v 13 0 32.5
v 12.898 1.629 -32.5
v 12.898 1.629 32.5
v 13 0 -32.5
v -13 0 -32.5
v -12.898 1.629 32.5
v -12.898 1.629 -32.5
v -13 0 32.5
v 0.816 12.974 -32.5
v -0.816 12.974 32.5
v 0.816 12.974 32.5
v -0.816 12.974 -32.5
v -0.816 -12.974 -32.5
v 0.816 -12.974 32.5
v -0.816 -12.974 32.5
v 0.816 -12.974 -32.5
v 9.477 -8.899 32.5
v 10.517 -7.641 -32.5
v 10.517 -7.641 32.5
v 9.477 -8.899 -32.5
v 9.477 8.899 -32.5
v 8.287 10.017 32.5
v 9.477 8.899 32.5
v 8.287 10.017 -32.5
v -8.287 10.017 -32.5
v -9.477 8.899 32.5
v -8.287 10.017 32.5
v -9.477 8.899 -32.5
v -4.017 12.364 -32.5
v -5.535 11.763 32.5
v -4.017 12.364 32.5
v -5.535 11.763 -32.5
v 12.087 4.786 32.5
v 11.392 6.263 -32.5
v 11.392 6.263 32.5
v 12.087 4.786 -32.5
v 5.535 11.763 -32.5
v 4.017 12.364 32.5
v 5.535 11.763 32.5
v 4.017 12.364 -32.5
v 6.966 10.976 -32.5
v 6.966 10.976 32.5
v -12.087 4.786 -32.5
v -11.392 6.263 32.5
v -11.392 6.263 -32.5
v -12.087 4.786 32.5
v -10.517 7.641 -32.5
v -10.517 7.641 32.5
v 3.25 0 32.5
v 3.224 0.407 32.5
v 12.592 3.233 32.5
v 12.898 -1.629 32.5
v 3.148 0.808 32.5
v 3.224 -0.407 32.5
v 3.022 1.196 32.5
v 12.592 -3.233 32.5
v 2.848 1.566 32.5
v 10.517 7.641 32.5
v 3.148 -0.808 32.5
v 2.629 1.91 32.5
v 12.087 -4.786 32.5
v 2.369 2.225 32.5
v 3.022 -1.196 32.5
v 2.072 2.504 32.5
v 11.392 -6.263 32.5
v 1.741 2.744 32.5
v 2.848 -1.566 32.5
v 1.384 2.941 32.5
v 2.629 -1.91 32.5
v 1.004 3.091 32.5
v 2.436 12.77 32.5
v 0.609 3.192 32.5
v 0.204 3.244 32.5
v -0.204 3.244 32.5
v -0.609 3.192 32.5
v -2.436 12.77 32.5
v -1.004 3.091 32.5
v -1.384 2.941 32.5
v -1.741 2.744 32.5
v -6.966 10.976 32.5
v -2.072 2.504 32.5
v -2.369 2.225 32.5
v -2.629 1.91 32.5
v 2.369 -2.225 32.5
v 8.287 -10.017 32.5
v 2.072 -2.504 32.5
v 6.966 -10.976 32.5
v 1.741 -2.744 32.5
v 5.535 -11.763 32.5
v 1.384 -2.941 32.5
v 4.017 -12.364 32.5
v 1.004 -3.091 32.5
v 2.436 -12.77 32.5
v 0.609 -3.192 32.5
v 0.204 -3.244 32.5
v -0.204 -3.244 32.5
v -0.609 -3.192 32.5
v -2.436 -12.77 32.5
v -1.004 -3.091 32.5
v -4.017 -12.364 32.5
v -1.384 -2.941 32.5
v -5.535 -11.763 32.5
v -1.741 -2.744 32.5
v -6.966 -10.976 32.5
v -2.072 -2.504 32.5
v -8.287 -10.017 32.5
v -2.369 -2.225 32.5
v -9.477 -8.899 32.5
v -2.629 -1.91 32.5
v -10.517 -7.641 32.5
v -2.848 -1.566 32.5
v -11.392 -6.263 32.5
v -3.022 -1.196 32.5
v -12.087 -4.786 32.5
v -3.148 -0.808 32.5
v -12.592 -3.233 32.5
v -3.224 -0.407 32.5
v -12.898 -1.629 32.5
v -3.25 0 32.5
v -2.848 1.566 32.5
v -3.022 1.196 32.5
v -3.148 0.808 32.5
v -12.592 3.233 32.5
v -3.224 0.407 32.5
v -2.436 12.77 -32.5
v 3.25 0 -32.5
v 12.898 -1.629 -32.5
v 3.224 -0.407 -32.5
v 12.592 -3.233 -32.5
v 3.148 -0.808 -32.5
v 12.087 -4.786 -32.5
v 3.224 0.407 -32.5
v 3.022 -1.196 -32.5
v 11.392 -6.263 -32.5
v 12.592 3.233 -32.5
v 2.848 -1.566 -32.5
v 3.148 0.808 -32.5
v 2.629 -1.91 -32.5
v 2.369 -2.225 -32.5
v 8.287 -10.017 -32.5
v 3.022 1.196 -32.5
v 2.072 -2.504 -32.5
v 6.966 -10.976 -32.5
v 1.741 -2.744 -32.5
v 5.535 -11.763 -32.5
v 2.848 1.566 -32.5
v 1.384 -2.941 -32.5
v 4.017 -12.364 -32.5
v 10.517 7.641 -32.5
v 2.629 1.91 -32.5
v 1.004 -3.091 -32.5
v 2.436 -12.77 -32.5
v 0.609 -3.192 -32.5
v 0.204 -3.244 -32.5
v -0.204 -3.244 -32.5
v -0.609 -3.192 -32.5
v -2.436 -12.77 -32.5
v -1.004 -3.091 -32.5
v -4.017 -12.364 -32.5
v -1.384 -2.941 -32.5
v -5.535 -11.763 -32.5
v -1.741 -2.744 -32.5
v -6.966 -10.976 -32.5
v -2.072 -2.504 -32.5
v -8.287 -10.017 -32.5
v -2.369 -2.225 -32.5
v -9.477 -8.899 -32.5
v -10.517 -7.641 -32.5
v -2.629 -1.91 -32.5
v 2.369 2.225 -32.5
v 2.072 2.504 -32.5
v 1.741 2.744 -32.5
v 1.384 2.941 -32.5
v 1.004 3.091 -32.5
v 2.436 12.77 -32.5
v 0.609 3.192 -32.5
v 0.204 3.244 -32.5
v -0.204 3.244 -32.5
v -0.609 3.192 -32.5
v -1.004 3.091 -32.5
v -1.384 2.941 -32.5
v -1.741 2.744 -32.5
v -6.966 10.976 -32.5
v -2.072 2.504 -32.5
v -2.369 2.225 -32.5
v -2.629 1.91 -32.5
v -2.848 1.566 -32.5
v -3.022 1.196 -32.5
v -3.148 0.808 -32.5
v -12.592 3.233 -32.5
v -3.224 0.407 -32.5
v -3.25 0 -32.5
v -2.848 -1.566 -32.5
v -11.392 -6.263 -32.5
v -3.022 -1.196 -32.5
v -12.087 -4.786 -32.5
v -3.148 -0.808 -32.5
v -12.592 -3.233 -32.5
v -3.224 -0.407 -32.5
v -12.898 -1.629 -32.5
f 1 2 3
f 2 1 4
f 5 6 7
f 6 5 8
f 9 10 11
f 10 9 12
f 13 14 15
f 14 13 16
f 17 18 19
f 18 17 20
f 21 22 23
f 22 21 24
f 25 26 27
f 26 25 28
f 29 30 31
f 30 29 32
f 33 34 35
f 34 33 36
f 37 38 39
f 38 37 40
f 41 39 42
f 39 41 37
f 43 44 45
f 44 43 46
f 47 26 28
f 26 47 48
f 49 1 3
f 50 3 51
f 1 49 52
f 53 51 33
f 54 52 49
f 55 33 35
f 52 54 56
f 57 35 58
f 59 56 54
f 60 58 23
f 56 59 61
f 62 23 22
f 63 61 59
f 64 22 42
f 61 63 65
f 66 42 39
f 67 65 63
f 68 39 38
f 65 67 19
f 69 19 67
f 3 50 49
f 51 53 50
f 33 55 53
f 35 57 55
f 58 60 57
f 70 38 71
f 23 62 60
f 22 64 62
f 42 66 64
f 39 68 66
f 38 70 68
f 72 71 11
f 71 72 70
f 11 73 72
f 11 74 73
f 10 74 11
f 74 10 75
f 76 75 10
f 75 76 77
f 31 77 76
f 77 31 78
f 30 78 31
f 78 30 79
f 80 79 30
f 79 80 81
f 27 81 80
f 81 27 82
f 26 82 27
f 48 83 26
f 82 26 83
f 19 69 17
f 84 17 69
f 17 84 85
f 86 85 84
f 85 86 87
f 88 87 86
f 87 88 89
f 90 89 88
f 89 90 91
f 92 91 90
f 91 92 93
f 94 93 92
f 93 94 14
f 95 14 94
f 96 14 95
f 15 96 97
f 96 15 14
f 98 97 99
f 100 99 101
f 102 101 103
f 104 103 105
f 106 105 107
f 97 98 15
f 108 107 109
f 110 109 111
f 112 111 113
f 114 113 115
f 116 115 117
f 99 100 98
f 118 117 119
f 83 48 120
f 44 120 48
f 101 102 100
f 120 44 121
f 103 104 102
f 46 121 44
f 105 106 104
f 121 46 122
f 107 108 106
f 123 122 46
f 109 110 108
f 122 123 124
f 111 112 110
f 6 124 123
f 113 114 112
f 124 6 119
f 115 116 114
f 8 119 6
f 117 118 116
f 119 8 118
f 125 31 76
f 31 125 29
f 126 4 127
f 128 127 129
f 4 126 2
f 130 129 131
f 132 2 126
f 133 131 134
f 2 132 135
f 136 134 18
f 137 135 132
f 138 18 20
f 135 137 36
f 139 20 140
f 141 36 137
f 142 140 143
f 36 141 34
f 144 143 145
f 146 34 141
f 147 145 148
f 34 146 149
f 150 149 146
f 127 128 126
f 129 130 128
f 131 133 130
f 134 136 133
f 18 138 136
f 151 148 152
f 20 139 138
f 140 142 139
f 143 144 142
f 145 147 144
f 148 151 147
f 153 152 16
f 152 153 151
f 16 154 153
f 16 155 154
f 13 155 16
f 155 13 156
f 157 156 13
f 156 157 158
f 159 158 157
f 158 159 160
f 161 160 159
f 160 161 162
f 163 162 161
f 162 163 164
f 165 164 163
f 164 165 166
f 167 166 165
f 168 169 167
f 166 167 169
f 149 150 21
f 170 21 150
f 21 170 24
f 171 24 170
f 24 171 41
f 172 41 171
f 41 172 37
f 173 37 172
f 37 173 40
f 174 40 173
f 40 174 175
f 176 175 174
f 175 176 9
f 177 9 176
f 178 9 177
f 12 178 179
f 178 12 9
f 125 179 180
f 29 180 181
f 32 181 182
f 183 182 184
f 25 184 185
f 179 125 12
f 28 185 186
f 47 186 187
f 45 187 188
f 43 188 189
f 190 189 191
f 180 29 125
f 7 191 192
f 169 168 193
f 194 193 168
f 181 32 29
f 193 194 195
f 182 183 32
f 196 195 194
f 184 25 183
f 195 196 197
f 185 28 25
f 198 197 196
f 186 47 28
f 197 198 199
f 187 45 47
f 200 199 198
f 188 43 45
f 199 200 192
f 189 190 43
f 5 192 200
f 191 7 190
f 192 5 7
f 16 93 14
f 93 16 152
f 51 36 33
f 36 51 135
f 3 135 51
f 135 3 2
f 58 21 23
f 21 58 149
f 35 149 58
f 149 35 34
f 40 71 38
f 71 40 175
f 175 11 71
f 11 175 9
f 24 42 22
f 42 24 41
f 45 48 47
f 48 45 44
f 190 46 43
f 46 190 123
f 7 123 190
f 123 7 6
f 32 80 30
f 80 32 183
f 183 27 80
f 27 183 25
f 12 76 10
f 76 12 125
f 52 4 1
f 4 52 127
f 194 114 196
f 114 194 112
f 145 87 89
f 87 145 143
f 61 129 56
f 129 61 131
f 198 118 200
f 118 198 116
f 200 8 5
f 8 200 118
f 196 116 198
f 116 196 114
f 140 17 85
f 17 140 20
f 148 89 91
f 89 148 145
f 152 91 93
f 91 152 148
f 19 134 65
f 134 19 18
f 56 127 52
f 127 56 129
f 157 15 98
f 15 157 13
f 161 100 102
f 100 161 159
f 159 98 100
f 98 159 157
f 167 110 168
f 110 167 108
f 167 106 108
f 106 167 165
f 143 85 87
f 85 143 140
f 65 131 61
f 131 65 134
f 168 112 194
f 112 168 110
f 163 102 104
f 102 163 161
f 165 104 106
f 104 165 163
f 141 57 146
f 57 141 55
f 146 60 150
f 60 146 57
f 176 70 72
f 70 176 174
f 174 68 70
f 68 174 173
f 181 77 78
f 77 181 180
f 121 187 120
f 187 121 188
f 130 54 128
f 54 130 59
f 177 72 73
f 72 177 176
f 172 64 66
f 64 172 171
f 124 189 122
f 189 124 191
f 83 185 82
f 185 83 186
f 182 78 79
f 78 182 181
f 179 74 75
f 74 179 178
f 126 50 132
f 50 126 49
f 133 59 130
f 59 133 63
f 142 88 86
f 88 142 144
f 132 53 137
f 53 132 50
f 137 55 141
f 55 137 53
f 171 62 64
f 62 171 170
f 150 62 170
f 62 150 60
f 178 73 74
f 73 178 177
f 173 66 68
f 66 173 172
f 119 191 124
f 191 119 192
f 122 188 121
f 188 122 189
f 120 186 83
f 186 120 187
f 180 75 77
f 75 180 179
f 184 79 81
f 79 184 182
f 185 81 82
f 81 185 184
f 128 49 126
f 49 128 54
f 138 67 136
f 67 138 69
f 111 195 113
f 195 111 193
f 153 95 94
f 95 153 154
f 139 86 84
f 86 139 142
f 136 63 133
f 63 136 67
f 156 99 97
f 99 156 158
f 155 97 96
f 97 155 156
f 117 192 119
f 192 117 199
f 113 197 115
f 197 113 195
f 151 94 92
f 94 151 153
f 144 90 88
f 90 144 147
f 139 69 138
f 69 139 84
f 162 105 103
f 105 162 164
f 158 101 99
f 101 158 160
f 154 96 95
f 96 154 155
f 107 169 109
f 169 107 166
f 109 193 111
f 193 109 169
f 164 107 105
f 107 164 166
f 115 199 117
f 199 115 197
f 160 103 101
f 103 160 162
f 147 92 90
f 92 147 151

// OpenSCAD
$fn = 50;


difference() {
	union() {
		translate(v = [0, 0, -32.5000000000]) {
			cylinder(h = 65, r = 13.0000000000);
		}
	}
	union() {
		translate(v = [0, 0, -100.0000000000]) {
			cylinder(h = 200, r = 3.2500000000);
		}
	}
}
